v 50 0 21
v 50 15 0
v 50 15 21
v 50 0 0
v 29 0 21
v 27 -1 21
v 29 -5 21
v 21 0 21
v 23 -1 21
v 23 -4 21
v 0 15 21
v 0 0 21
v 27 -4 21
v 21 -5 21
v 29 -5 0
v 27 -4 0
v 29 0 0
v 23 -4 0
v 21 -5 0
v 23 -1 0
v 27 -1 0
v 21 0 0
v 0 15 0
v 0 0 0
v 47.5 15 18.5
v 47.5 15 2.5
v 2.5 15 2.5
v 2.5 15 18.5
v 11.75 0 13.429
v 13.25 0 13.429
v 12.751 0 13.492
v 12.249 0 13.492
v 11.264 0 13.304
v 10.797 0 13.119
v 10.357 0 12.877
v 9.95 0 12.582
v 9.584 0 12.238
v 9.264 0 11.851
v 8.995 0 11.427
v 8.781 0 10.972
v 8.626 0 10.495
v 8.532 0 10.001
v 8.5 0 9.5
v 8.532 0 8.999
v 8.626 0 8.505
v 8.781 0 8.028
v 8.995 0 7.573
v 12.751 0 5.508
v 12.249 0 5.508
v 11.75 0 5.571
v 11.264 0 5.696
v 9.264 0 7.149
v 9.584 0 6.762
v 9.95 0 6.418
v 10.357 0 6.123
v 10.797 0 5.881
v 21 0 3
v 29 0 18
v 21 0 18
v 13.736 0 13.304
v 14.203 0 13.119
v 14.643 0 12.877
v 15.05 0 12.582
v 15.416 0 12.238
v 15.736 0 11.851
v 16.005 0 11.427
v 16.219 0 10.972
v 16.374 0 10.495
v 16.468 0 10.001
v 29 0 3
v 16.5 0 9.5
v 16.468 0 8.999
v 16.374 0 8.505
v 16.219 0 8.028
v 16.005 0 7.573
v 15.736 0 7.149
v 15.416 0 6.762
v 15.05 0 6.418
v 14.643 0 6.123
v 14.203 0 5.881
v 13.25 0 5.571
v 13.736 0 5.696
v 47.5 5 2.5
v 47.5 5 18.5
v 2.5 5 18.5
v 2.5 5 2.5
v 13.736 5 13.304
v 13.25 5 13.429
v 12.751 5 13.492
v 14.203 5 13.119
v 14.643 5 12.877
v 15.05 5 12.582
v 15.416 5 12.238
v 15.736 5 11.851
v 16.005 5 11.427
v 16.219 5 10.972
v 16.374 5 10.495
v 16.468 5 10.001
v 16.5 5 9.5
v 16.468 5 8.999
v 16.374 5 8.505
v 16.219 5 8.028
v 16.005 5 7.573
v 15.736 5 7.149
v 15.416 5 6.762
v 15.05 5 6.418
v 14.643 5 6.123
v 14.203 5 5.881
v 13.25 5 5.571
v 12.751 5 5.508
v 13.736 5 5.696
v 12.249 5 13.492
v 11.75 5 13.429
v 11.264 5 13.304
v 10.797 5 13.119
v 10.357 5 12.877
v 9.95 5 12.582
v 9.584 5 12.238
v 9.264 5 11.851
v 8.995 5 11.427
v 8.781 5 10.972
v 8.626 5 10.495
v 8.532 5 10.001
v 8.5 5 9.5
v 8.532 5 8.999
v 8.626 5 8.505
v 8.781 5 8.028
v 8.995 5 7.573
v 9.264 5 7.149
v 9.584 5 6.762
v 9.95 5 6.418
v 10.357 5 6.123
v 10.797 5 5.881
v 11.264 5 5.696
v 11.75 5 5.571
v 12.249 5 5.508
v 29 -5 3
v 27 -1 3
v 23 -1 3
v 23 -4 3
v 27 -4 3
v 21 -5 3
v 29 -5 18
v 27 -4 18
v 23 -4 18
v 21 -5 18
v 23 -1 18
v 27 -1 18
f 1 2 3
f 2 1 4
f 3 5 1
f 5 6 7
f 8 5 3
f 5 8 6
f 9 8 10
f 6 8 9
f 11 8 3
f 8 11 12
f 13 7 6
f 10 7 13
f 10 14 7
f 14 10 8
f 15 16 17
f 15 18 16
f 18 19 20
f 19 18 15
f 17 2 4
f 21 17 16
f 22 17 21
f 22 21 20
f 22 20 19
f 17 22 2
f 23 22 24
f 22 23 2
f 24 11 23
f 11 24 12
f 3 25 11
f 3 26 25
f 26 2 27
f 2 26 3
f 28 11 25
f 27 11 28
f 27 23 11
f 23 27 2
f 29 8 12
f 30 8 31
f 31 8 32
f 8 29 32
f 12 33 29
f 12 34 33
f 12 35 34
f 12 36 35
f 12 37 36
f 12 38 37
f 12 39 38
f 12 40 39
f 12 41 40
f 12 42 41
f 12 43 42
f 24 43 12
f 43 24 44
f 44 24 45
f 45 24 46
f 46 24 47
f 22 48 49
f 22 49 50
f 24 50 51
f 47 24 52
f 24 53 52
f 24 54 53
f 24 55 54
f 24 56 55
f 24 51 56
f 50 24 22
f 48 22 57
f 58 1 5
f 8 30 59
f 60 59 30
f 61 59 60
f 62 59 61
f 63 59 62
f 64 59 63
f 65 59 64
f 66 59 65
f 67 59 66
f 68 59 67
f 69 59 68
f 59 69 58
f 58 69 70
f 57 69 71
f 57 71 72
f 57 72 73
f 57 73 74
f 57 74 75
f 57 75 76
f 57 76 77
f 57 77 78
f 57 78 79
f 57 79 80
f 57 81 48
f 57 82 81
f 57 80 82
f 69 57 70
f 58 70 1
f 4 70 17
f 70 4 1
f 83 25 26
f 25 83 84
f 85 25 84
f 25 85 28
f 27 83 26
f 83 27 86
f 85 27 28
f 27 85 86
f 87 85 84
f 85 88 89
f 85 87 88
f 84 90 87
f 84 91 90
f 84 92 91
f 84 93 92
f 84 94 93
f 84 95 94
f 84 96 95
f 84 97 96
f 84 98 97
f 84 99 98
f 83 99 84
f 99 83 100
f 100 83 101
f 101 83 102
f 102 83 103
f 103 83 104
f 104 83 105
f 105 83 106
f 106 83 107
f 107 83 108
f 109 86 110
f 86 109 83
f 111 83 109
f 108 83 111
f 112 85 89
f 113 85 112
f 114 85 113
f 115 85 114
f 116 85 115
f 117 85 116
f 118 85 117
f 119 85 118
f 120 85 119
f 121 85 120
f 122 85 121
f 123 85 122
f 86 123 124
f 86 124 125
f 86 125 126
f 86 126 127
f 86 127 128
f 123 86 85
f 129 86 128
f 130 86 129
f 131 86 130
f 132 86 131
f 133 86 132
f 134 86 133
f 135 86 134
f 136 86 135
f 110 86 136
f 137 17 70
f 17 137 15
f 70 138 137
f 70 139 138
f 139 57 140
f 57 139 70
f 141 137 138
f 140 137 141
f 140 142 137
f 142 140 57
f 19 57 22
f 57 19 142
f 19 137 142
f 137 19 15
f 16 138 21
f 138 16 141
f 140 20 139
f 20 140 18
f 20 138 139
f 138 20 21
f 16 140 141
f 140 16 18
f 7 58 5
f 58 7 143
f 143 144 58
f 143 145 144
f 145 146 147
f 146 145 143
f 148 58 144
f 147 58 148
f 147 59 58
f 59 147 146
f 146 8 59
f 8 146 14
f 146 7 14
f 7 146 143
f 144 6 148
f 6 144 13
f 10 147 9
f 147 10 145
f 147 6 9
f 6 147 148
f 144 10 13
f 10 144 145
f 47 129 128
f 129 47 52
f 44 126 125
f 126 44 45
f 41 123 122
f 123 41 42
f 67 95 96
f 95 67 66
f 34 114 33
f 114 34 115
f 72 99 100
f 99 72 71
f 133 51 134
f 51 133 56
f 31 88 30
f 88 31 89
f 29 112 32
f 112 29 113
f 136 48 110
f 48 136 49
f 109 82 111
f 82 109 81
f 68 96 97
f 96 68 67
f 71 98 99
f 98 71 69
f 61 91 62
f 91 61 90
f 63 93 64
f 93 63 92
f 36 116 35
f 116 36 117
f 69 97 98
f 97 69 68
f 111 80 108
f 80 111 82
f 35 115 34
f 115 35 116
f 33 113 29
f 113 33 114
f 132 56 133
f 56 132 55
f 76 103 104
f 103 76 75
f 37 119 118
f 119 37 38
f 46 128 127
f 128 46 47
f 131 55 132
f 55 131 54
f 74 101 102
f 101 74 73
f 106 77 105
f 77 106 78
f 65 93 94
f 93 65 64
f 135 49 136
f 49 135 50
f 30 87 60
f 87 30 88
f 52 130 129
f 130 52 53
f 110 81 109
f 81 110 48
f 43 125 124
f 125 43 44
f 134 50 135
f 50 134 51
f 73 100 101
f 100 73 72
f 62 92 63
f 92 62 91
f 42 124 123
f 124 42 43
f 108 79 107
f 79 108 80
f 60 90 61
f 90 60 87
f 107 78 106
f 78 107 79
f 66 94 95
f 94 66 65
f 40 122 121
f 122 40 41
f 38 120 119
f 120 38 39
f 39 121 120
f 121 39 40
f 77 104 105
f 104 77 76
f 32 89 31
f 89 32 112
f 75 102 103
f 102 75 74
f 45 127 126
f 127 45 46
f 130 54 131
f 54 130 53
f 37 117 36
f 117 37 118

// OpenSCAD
lamp_inside_x = 45;
lamp_inside_y = 10;
lamp_inside_z = 16;

lamp_x = (lamp_inside_x + 5);
lamp_y = (lamp_inside_y + 5);
lamp_z = (lamp_inside_z + 5);



bracket_x = 8;
bracket_y = 5;
bracket_z = 3;
bracket_hole_x = 4;
bracket_hole_y = 3;
bracket_hole_z = 3;

//main body
module main_body(){
   cube([lamp_x,lamp_y,lamp_z]);}
module cube_inside(x,y,z,inside_x,inside_y,inside_z){
   lamp_pos_x = (x-inside_x)/2;
   lamp_pos_y = (y-inside_y);
   lamp_pos_z = (z-inside_z)/2;
   
   translate([lamp_pos_x,lamp_pos_y,lamp_pos_z]){
	  cube([inside_x,inside_y,inside_z]);}
   ;}   
module bracket(){
   difference(){
	  cube([bracket_x,bracket_y,bracket_z]);
	  translate([(bracket_x-bracket_hole_x)/2,(bracket_y-bracket_hole_y)/2,(bracket_z-bracket_hole_z)/2]){
		 cube([bracket_hole_x,bracket_hole_y,bracket_hole_z]);}
	  }
   }

module wire_hole(){
    wire_hole_radius = 4;
    translate([(lamp_x)/4,(lamp_y-lamp_inside_y),(lamp_y/2)+(wire_hole_radius/2)]){
        rotate([90,0,0]){
            cylinder(h=(lamp_y-lamp_inside_y), r=wire_hole_radius, $fn=50);
        }
    }
}

module main(){
    difference(){
        difference(){
            //main body
            main_body();
            //cube inside
            cube_inside(lamp_x,lamp_y,lamp_z,lamp_inside_x,lamp_inside_y,lamp_inside_z);
        }
        wire_hole();
    }
	  
   //bracket down
   translate([(lamp_x-bracket_x)/2,-bracket_y,0]){
	  bracket();}
   //bracket up
   translate([(lamp_x-bracket_x)/2,-bracket_y,lamp_z-bracket_z]){
		 bracket();}
	  
   
}



main();
